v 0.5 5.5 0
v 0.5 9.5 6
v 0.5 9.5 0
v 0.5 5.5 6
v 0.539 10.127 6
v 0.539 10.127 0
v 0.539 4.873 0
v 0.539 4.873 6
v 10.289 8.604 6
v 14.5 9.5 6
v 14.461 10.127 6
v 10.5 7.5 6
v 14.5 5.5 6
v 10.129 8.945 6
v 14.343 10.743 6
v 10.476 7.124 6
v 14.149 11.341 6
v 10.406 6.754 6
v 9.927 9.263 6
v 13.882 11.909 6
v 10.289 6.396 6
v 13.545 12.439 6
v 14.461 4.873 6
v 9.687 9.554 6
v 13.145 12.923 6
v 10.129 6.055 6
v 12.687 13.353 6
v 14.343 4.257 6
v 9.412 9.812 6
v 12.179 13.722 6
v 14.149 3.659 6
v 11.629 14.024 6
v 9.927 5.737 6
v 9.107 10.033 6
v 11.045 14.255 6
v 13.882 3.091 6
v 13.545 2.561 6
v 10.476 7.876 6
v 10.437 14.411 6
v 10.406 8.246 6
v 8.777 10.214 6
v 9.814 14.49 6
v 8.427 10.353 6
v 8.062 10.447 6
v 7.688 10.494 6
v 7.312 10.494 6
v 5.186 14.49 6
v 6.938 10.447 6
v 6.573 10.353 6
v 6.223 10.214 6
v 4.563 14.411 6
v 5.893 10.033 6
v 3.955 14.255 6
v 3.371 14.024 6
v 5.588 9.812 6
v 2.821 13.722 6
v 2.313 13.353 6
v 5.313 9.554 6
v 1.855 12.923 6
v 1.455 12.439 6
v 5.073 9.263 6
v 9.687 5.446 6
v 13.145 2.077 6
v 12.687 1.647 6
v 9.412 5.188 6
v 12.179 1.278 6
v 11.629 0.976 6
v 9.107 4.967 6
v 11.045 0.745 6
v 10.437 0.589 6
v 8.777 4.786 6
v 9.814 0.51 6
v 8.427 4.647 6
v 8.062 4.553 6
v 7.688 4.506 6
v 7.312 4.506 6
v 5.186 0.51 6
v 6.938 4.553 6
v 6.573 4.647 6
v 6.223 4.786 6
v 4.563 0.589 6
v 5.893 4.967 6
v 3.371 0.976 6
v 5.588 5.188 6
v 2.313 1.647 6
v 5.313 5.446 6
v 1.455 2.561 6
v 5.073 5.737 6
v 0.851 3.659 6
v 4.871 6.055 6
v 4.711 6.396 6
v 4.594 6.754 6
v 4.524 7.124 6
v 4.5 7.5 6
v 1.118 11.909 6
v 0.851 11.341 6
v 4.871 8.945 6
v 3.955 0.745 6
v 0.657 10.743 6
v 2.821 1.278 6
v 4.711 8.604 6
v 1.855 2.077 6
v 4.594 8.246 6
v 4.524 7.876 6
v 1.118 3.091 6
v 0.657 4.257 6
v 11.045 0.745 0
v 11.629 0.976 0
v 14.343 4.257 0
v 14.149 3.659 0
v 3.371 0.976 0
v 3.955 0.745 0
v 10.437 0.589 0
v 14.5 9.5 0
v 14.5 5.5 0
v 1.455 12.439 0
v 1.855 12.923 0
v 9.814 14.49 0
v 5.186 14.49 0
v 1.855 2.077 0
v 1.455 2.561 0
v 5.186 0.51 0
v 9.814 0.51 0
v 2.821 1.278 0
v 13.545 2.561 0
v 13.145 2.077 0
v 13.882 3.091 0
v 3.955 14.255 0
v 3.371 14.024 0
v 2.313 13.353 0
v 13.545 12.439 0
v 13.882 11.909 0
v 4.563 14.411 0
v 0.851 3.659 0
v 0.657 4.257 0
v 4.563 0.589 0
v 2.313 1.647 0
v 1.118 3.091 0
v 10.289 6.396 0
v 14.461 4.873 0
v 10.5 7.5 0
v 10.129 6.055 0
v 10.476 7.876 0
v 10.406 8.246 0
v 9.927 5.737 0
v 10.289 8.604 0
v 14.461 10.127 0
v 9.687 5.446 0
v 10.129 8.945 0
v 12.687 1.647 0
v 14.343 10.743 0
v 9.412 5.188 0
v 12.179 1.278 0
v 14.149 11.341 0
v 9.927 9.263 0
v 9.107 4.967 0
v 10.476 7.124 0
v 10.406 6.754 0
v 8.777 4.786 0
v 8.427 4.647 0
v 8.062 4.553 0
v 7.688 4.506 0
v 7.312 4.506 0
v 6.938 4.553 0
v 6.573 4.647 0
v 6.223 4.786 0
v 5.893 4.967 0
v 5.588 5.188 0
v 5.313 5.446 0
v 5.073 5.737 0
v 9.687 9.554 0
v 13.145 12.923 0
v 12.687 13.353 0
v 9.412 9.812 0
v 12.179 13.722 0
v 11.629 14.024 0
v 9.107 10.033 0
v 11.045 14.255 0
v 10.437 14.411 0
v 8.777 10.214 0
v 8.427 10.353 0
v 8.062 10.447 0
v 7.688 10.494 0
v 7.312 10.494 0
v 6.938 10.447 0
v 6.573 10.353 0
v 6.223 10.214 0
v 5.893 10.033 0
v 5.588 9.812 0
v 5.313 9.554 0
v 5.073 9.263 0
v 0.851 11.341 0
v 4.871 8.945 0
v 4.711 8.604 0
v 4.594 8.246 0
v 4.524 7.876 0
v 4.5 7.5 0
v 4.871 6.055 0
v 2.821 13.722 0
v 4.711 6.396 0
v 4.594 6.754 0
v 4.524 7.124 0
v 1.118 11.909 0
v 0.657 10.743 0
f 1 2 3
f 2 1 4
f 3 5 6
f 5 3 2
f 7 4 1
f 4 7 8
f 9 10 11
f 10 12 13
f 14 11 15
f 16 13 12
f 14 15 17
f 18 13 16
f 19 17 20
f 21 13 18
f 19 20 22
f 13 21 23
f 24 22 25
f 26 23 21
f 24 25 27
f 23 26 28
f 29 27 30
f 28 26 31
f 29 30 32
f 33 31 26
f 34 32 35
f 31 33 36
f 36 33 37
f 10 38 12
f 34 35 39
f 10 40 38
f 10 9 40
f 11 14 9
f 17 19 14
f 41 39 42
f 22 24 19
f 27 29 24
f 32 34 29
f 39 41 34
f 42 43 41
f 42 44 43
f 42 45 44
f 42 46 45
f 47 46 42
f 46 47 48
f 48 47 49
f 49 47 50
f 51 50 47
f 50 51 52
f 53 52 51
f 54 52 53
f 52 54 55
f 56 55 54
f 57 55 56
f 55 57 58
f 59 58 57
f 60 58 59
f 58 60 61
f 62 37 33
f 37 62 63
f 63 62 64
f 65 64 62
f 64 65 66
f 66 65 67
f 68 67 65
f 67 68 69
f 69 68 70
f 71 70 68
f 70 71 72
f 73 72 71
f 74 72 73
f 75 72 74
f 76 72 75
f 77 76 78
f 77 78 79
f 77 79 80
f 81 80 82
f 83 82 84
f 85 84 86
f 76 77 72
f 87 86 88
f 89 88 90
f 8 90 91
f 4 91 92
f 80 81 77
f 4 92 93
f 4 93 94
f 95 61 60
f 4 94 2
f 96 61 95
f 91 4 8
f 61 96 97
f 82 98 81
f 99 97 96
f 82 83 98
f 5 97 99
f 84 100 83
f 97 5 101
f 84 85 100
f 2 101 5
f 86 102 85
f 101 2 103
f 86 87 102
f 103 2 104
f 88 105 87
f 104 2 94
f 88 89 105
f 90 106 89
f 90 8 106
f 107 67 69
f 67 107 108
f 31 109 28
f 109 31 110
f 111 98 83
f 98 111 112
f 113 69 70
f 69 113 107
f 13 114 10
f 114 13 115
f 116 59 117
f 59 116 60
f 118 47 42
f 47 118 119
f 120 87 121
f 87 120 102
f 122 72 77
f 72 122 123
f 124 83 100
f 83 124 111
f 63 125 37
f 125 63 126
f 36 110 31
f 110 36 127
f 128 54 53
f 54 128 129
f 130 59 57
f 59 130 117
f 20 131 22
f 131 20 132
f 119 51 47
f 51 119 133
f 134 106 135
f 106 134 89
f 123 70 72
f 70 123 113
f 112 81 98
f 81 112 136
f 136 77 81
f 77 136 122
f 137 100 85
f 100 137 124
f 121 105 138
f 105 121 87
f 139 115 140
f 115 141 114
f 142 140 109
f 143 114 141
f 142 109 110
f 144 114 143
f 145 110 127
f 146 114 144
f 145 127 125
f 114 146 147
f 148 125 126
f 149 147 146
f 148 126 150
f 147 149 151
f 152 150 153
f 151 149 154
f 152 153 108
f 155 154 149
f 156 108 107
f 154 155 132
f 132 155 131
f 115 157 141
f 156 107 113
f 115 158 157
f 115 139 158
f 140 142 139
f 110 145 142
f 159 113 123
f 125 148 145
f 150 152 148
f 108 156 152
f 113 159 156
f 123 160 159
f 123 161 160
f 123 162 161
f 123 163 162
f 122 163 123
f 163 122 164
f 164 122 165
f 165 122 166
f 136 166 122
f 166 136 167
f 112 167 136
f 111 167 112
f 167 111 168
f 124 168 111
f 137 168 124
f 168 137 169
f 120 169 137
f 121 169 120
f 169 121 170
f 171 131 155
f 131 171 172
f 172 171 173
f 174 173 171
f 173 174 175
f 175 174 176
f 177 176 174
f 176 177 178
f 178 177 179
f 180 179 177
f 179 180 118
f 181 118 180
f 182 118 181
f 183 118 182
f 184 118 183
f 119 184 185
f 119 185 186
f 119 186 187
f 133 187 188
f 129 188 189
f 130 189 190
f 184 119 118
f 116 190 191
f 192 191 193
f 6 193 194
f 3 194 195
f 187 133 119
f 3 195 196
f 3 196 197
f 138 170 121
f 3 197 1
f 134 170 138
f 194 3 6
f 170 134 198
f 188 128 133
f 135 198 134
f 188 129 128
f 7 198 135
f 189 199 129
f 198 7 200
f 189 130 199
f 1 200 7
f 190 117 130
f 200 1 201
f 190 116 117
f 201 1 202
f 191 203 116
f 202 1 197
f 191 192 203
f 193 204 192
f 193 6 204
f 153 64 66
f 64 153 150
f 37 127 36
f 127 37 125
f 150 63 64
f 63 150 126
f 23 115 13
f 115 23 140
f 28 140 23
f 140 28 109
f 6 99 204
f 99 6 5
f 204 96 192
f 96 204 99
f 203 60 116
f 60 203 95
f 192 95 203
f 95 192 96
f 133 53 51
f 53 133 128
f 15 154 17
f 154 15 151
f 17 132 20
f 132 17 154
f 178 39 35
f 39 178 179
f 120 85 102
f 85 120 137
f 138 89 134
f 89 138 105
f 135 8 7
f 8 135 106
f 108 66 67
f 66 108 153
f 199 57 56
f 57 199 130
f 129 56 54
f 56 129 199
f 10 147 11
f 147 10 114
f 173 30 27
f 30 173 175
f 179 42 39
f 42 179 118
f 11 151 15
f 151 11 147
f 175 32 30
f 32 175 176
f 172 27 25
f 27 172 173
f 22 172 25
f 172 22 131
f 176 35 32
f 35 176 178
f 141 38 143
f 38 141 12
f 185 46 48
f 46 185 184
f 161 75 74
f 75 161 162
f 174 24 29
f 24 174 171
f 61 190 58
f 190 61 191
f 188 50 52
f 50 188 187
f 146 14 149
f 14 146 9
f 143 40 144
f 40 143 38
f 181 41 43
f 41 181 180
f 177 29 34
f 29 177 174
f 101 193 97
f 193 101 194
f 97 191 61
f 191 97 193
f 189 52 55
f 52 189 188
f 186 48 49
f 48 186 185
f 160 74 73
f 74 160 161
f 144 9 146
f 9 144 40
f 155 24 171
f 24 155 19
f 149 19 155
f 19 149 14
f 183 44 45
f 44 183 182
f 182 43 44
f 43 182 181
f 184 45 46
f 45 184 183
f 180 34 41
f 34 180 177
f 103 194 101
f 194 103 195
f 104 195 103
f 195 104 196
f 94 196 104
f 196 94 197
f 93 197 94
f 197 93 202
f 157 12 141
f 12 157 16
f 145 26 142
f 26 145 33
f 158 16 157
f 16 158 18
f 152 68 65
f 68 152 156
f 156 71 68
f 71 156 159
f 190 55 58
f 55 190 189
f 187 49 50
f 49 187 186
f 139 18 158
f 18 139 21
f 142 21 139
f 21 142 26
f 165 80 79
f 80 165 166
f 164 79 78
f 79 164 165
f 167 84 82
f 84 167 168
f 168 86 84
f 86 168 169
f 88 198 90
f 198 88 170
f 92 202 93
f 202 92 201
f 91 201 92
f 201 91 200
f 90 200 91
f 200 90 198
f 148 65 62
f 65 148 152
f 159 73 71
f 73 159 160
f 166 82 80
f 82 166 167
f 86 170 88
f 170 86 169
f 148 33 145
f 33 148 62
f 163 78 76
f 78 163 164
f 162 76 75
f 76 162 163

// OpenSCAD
// Generated by SolidPython 1.1.3 on 2023-01-09 15:31:11
$fn = 50;


difference() {
	union() {
		translate(v = [7.5000000000, 7.5000000000, 0]) {
			rotate(a = [0, 0, 0]) {
				hull() {
					translate(v = [-2.0000000000, 2.0000000000, 0]) {
						rotate(a = [0, 0, 0]) {
							translate(v = [0, 0, 0]) {
								rotate(a = [0, 0, 0]) {
									cylinder(h = 6, r = 5);
								}
							}
						}
					}
					translate(v = [2.0000000000, 2.0000000000, 0]) {
						rotate(a = [0, 0, 0]) {
							translate(v = [0, 0, 0]) {
								rotate(a = [0, 0, 0]) {
									cylinder(h = 6, r = 5);
								}
							}
						}
					}
					translate(v = [-2.0000000000, -2.0000000000, 0]) {
						rotate(a = [0, 0, 0]) {
							translate(v = [0, 0, 0]) {
								rotate(a = [0, 0, 0]) {
									cylinder(h = 6, r = 5);
								}
							}
						}
					}
					translate(v = [2.0000000000, -2.0000000000, 0]) {
						rotate(a = [0, 0, 0]) {
							translate(v = [0, 0, 0]) {
								rotate(a = [0, 0, 0]) {
									cylinder(h = 6, r = 5);
								}
							}
						}
					}
				}
			}
		}
	}
	union() {
		translate(v = [7.5000000000, 7.5000000000, 0]) {
			rotate(a = [0, 0, 0]) {
				translate(v = [0, 0, -50]) {
					rotate(a = [0, 0, 0]) {
						cylinder(h = 100, r = 3.0000000000);
					}
				}
			}
		}
	}
}
/***********************************************
*********      SolidPython code:      **********
************************************************
 
from solid import *
import os
import subprocess

import oomB

import opsc_library_gen

mode = "laser"
#mode = "3d_print"

defined_objects = {}

radius_dict = {}
countersunk_dict = {}


def set_mode(m):
    global mode
    mode = m
    radius_dict['M6'] = 6.5/2
    radius_dict['M3'] = 3.3/2
    if mode == "laser":
        radius_dict['M6'] = 6/2
        radius_dict['M3'] = 3/2

    countersunk_dict['M3'] = {}
    countersunk_dict['M3']['little_rad'] = radius_dict['M3']
    countersunk_dict['M3']['big_rad'] = (5.5+0.6)/2
    if mode == "laser":
        countersunk_dict['M3']['big_rad'] = (4.75+0.6)/2
        countersunk_dict['M3']['little_rad'] = (4.75+0.6)/2

    countersunk_dict['M3']['height'] = 1.7


def opsc_make_object(filename, objects, save_type="none",resolution=50, layers = 1, tilediff = 200, mode="laser"):
    set_mode(mode)
    save_type = save_type.lower()
    os.makedirs(os.path.dirname(filename), exist_ok=True)
    final_object = opsc_get_object(objects)
    # Save the final object to the specified filename    
    scad_render_to_file(final_object, filename, file_header='$fn = %s;' % resolution, include_orig_code=True)
    if mode == "laser":
        filename_laser = filename.replace(".scad","-flat.scad")
        scad_render_to_file(getLaser(final_object, layers=layers, tilediff=tilediff), filename_laser, file_header='$fn = %s;' % resolution, include_orig_code=True)
        if save_type == "all":
            saveToAll(filename_laser)
        elif save_type == "dxf":
            saveToDxf(filename_laser)
    if save_type == "all":
        saveToAll(filename)
    elif save_type == "dxf":
        saveToDxf(filename)


def opsc_get_object(objects):
    # Create the solidpython objects
    positive_objects = [get_opsc_item(obj) for obj in objects if obj['type'] == 'positive']
    negative_objects = [get_opsc_item(obj) for obj in objects if obj['type'] == 'negative']
    # Union the positive objects
    positive_object = union()(*positive_objects)
    # Union the negative objects
    negative_object = union()(*negative_objects)
    # Create the final object by subtracting the negative objects from the positive objects
    return difference()(positive_object, negative_object)

def get_opsc_item(params):
    # A dictionary to map radius string values to numerical values
    #radius_dict = {'small': 5, 'medium': 10, 'large': 15}
    # An array of function names for basic shapes
    basic_shapes = ['cube', 'sphere', 'cylinder']
    
    # An array of function names for other shapes
    other_shapes = ['hole', 'slot', 'rounded_rectangle', 'countersunk']
    


    # Convert radius to r if present, and remove radius from the params dictionary
    if 'radius' in params:
        if isinstance(params['radius'], str):
            # Use the radius_dict to map the radius string value to a numerical value
            params['r'] = radius_dict[params['radius']]
        else:
            params['r'] = params['radius']
        del params['radius']
    

    # Check if the object type is a basic shape
    if params['shape'] in basic_shapes:
        # Remove shape and unexpected dictionary values
        allowed_keys = {'size', 'r', 'r1', 'r2', 'd', 'h', 'rw', 'rh', 'dw', 'dh'}
        shape_params = {k: v for k, v in params.items() if k in allowed_keys}

        # Call the corresponding function for the shape parameter, using ** notation to pass the shape_params dictionary as keyword arguments
        return get_opsc_transform(params,globals()[params['shape']](**shape_params))
    
    # If the object type is not a basic shape, check if it's a defined object or one of the other shapes
    elif params['shape'] in other_shapes:
        # Call the corresponding function for the shape parameter, passing the params dictionary as an argument
        p2 = copy.deepcopy(params)
        p2["pos"] = [0,0,0]
        return get_opsc_transform(params,globals()[params['shape']](p2))
    
    # If the object is not a basic shape or a defined object, try to import it from a .scad file
    else:
        obj = defined_objects[params['shape']]
        return get_opsc_transform(params,obj)

def get_opsc_transform(params, solid_obj):
    # Rotate the object based on the 'rot' field in the params dictionary, or the 'rotX', 'rotY', and 'rotZ' fields if 'rot' is not present
    rot = params.get('rot', [])
    if rot:
        rotX, rotY, rotZ = rot
    else:
        rotX = params.get('rotX', 0)
        rotY = params.get('rotY', 0)
        rotZ = params.get('rotZ', 0)
    solid_obj = rotate([rotX, rotY, rotZ])(solid_obj)

    # Translate the object based on the 'pos' field in the params dictionary, or the 'x', 'y', and 'z' fields if 'pos' is not present
    pos = params.get('pos', [])
    if pos:
        x, y, z = pos
    else:
        x = params.get('x', 0)
        y = params.get('y', 0)
        z = params.get('z', 0)
    solid_obj = translate([x, y, z])(solid_obj)
    return solid_obj


import random

def opsc_easy_array(type, shape, repeats, pos_start, shift_arr, **kwargs):
    for i in range(0,3):
        repeats.append(1)
        pos_start.append(0)
        shift_arr.append(0)
    return_objects = []

    for x in range(0,repeats[0]):
        for y in range(0,repeats[1]):
            for z in range(0,repeats[2]):
                return_objects.append(opsc_easy(type, shape, pos=[pos_start[0]+x*shift_arr[0],pos_start[1]+y*shift_arr[1],pos_start[2]+z*shift_arr[2]], **kwargs))
    return return_objects                



def opsc_easy(type, shape, **kwargs):
    obj = {
        'type': type,
        'shape': shape
    }
    for param in ['size', 'r', 'r1', 'r2', 'd', 'h', 'rw', 'rh', 'dw', 'dh', 'pos', 'x', 'y', 'z', 'rot', 'rotX', 'rotY', 'rotZ', "w"]:
        if param in kwargs:
            obj[param] = kwargs[param]
    return obj

def hole(params):
    p2 = copy.deepcopy(params)  
    # Check if the radius is a string and replace it with the corresponding value from the dictionary
    if isinstance(p2['r'], str):
        p2['r'] = radius_dict[p2['r']]
    
    # Set the height to 100 if not specified
    if 'h' not in p2:
        p2['h'] = 100
        p2["pos"] = [0,0,-50]
    p2["center"] = True
    # Create the cylinder object
    p2["shape"] = "cylinder"
    p2["type"] = "positive"

    return get_opsc_item(p2)

import copy

def countersunk(params):
    p2 = copy.deepcopy(params)
    counter_rad = p2['r']
    p2['r'] = radius_dict[p2['r']]
    hp = copy.deepcopy(p2)
    hp["type"] = "positive"
    hp["shape"] = "hole"
    del hp["rot"]
    hol = get_opsc_item(hp)
    
    cp = copy.deepcopy(p2)
    cp["h"] = countersunk_dict[counter_rad]["height"]
    cp["r2"] = countersunk_dict[counter_rad]["little_rad"]
    cp["r1"] = countersunk_dict[counter_rad]["big_rad"]
    del cp["r"]
    del cp["rot"]
    cp["type"] = "positive"
    cp["shape"] = "cylinder"
    cp["pos"] = [0,0,0]

    top = get_opsc_item(cp)
    return union()(hol,top)



def slot(params):  
    p2 = copy.deepcopy(params) 
    if isinstance(p2['r'], str):
        p2['r'] = radius_dict[p2['r']]
    p2["type"] = "positive"
    p2["shape"] = "hole"
    del p2["rot"]
    p2["pos"] = [0,0,0]
    left = copy.deepcopy(p2)
    right = copy.deepcopy(p2)
    left["pos"][0] = p2["w"] / 2 - p2["r"] 
    
    right["pos"][0] = -p2["w"] / 2 + p2["r"] 
    pass
    leftObj = get_opsc_item(left)
    rightObj = get_opsc_item(right)
    return hull()(leftObj, rightObj)

def rounded_rectangle(params):   
    p2 = copy.deepcopy(params) 
    p2["h"] = p2["size"][2]
    p2["pos"] = p2.get("pos", [0, 0, 0]) 
    p2["type"] = "positive"
    p2["shape"] = "hole"
    p2["pos"] = [0,0,0]
    
    if 'rot' in p2:
        del p2["rot"]   
    if 'r' not in p2:
        p2["r"] = 5 
    tl = copy.deepcopy(p2)
    tr = copy.deepcopy(p2)
    bl = copy.deepcopy(p2)
    br = copy.deepcopy(p2)
    tl["pos"][0] = -(p2["size"][0] - p2["r"]*2)/2
    tl["pos"][1] = (p2["size"][1] - p2["r"]*2)/2
    tr["pos"][0] = (p2["size"][0] - p2["r"]*2)/2
    tr["pos"][1] = (p2["size"][1] - p2["r"]*2)/2
    bl["pos"][0] = -(p2["size"][0] - p2["r"]*2)/2
    bl["pos"][1] = -(p2["size"][1] - p2["r"]*2)/2
    br["pos"][0] = (p2["size"][0] - p2["r"]*2)/2
    br["pos"][1] = -(p2["size"][1] - p2["r"]*2)/2
    del tl["size"]
    del tr["size"]
    del bl["size"]
    del br["size"]
    tlo = get_opsc_item(tl)
    tro = get_opsc_item(tr)
    blo = get_opsc_item(bl)
    bro = get_opsc_item(br)    
    return hull()(tlo, tro, blo, bro)



def import_scad_object(filename):
    # Import the .scad file and convert it to a solidpython object
    #filename = "parts"
    obj = import_scad(filename)
    return obj.main()
    


import os
import solid as solidpython

# A dictionary to store the defined objects


def load_scad_objects():
    opsc_library_gen.gen_library(defined_objects)

import random

def test(num_objects):
    objects = []
    for i in range(num_objects):
        # Choose a random shape
        #shape = random.choice(['cube', 'sphere', 'cylinder', 'hole', 'slot', "rounded_rectangle"])
        shape = random.choice(["rounded_rectangle"])

        # Choose a random type
        type = random.choice(['positive', 'negative'])
        
        # Create an empty object dictionary
        obj = {'shape': shape, 'type': type}
        
        # Set shape-specific parameters
        if obj['shape'] in ['cube']:
            obj['size'] =  [random.uniform(5, 15), random.uniform(5, 15), random.uniform(5, 15)]
        if obj['shape'] in ['rounded_rectangle']:
            obj['size'] =  [random.uniform(5, 15), random.uniform(5, 15), random.uniform(5, 15)]
            obj['r'] = random.uniform(0.5, 5)
        elif obj['shape'] == 'sphere':
            obj['r'] = random.uniform(5, 15)
        elif obj['shape'] in ['cylinder', 'hole']:
            obj['r'] = random.uniform(0.5, 5)
            obj['h'] = random.uniform(5, 15)
        elif obj['shape'] == 'slot':
            obj['r'] = random.uniform(0.5, 5)
            obj['h'] = random.uniform(5, 15)
            obj['w'] = random.uniform(5, 15)
        
        # Set a random position and rotation
        obj['pos'] = [random.uniform(-20, 20), random.uniform(-20, 20), random.uniform(-20, 20)]
        obj['rot'] = [random.uniform(-180, 180), random.uniform(-180, 180), random.uniform(-180, 180)]
        
        # Add the object to the list
        objects.append(obj)
    return objects

####### old file saving
def saveToAll(fileIn):
    saveToDxf(fileIn)
    saveToPng(fileIn)
    saveToStl(fileIn)
    saveToSvg(fileIn)

def saveToDxf(fileIn, fileOut="", copy_to_laser=True):
    if fileOut == "":
        fileOut = fileIn.replace(".scad",".dxf")
    saveToFile(fileIn, fileOut)


    
def saveToPng(fileIn, fileOut="",extra="--render"):
    if fileOut == "":
        fileOut = fileIn.replace(".scad",".png")
    saveToFile(fileIn, fileOut)

def saveToStl(fileIn, fileOut=""):
    if fileOut == "":
        fileOut = fileIn.replace(".scad",".stl")
    saveToFile(fileIn, fileOut)
    
def saveToSvg(fileIn, fileOut=""):
    if fileOut == "":
        fileOut = fileIn.replace(".scad",".svg")
    saveToFile(fileIn, fileOut)

def saveToFile(fileIn, fileOut,extra=""):
    #extra = extra + " --colorscheme Tomorrow"

    launchStr = 'openscad -o "' + fileOut + '"' + extra + ' "' + fileIn + '"'
    if ".png" in fileOut:
        launchStr = launchStr + " --render"
    print("            saveToFile launch string: " + launchStr)
    subprocess.run(launchStr)
    x=0

def getLaser(final_object,start=1.5,layers=1,thickness=3,tilediff=200):
        rv= []

        for x in range(layers):
            rv.append(translate([0,x*tilediff,0])(
                    projection()(
                        intersection()(translate([-500,-500,start+x*thickness])(cube(size=[1000,1000,0.1])),
                            final_object
                        )
                    )
            )
            )
            
        return union()(rv)

set_mode("laser")
load_scad_objects() 
 
************************************************/
